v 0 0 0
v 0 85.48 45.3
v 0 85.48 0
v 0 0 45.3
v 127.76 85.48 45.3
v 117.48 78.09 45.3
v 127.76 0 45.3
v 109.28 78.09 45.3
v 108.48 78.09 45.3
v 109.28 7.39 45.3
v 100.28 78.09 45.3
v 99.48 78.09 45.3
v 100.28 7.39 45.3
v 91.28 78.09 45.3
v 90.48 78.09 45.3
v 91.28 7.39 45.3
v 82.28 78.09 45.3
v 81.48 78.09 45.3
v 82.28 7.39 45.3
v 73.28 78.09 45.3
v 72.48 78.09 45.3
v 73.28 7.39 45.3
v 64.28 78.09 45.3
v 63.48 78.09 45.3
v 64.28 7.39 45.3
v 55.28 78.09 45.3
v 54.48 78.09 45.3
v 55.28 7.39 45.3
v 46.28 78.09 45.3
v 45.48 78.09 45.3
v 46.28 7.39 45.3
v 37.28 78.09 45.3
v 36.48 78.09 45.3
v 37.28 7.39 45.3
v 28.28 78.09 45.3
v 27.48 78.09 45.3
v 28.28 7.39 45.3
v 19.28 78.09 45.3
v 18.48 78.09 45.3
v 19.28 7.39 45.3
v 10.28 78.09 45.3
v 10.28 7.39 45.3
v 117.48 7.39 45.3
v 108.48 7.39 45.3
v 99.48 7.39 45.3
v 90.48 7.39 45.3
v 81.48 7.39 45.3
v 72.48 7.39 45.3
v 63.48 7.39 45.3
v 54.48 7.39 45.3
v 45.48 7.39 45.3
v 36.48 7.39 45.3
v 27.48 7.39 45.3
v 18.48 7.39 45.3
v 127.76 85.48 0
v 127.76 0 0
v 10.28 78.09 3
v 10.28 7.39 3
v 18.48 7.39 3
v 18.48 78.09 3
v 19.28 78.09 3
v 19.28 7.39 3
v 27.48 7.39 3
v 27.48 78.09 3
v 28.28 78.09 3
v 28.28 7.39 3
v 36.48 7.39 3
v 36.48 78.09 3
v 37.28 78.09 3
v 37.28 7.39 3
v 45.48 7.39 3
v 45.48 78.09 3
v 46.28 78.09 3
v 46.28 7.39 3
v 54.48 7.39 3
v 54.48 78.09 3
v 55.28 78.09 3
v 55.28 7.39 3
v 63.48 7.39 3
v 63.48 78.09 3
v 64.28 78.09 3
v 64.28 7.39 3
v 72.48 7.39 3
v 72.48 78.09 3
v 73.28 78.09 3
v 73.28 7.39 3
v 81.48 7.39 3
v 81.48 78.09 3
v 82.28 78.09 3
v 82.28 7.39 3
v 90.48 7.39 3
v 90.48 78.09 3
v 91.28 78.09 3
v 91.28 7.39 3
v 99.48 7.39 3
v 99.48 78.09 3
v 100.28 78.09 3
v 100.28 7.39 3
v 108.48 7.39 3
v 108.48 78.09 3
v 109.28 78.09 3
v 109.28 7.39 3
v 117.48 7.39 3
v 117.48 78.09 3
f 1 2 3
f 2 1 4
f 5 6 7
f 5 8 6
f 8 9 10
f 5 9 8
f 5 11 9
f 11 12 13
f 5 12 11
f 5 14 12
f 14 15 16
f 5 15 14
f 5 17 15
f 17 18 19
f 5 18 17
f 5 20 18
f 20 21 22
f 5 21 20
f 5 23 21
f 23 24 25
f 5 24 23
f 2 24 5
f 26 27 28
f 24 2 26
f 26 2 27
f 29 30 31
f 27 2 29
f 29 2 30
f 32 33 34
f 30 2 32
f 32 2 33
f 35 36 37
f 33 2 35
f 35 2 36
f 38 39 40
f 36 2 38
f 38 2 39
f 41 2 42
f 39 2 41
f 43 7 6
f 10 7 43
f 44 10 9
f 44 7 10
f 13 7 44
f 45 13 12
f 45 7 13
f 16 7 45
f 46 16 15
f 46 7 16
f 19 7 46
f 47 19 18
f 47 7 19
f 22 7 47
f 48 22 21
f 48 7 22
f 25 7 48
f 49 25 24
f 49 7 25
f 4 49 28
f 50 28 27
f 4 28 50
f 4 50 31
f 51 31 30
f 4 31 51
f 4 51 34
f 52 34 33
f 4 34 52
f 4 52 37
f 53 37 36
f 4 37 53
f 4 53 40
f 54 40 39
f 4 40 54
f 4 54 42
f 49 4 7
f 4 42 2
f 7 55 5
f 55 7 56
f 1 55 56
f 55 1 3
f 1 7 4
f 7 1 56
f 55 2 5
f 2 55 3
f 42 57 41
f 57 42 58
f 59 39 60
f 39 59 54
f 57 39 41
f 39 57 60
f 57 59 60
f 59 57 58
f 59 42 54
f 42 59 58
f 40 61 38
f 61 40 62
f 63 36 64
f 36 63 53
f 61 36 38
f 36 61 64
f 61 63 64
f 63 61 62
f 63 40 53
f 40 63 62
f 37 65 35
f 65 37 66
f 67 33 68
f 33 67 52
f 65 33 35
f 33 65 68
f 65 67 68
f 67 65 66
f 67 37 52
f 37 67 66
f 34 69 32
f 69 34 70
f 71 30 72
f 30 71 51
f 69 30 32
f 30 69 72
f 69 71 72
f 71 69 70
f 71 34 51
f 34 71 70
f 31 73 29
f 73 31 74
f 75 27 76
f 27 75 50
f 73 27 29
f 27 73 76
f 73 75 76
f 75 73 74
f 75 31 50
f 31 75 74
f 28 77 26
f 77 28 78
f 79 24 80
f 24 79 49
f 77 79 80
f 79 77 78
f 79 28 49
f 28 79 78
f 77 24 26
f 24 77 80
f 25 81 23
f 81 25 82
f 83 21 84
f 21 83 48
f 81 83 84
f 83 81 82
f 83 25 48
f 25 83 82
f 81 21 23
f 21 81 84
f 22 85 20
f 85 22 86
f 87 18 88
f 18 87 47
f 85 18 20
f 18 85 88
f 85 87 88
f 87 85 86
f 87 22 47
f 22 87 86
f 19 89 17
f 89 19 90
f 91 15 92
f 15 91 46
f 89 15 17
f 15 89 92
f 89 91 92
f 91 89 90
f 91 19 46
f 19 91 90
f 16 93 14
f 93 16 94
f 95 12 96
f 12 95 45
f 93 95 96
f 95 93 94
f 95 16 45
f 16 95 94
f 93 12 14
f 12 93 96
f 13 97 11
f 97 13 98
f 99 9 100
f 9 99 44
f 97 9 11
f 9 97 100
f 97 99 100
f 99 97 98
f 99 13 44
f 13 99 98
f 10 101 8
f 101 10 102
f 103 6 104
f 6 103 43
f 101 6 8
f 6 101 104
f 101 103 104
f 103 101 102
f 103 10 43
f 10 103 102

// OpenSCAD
// Opentrons Tough 22mL 12 Well Reservoir
// loadName: opentrons_tough_12_reservoir_22ml
// Auto-generated by labware_to_stl.py from Opentrons V2 labware definition

$fn = 64;

difference() {
    // ── Labware body ──────────────────────────────────────────────
    cube([127.7600, 85.4800, 45.3000]);

    // ── Well cutouts ──────────────────────────────────────────────
    // Well A1
    translate([10.2800, 7.3900, 3.0000])
        cube([8.2000, 70.7000, 43.3000]);
    // Well A2
    translate([19.2800, 7.3900, 3.0000])
        cube([8.2000, 70.7000, 43.3000]);
    // Well A3
    translate([28.2800, 7.3900, 3.0000])
        cube([8.2000, 70.7000, 43.3000]);
    // Well A4
    translate([37.2800, 7.3900, 3.0000])
        cube([8.2000, 70.7000, 43.3000]);
    // Well A5
    translate([46.2800, 7.3900, 3.0000])
        cube([8.2000, 70.7000, 43.3000]);
    // Well A6
    translate([55.2800, 7.3900, 3.0000])
        cube([8.2000, 70.7000, 43.3000]);
    // Well A7
    translate([64.2800, 7.3900, 3.0000])
        cube([8.2000, 70.7000, 43.3000]);
    // Well A8
    translate([73.2800, 7.3900, 3.0000])
        cube([8.2000, 70.7000, 43.3000]);
    // Well A9
    translate([82.2800, 7.3900, 3.0000])
        cube([8.2000, 70.7000, 43.3000]);
    // Well A10
    translate([91.2800, 7.3900, 3.0000])
        cube([8.2000, 70.7000, 43.3000]);
    // Well A11
    translate([100.2800, 7.3900, 3.0000])
        cube([8.2000, 70.7000, 43.3000]);
    // Well A12
    translate([109.2800, 7.3900, 3.0000])
        cube([8.2000, 70.7000, 43.3000]);
}
